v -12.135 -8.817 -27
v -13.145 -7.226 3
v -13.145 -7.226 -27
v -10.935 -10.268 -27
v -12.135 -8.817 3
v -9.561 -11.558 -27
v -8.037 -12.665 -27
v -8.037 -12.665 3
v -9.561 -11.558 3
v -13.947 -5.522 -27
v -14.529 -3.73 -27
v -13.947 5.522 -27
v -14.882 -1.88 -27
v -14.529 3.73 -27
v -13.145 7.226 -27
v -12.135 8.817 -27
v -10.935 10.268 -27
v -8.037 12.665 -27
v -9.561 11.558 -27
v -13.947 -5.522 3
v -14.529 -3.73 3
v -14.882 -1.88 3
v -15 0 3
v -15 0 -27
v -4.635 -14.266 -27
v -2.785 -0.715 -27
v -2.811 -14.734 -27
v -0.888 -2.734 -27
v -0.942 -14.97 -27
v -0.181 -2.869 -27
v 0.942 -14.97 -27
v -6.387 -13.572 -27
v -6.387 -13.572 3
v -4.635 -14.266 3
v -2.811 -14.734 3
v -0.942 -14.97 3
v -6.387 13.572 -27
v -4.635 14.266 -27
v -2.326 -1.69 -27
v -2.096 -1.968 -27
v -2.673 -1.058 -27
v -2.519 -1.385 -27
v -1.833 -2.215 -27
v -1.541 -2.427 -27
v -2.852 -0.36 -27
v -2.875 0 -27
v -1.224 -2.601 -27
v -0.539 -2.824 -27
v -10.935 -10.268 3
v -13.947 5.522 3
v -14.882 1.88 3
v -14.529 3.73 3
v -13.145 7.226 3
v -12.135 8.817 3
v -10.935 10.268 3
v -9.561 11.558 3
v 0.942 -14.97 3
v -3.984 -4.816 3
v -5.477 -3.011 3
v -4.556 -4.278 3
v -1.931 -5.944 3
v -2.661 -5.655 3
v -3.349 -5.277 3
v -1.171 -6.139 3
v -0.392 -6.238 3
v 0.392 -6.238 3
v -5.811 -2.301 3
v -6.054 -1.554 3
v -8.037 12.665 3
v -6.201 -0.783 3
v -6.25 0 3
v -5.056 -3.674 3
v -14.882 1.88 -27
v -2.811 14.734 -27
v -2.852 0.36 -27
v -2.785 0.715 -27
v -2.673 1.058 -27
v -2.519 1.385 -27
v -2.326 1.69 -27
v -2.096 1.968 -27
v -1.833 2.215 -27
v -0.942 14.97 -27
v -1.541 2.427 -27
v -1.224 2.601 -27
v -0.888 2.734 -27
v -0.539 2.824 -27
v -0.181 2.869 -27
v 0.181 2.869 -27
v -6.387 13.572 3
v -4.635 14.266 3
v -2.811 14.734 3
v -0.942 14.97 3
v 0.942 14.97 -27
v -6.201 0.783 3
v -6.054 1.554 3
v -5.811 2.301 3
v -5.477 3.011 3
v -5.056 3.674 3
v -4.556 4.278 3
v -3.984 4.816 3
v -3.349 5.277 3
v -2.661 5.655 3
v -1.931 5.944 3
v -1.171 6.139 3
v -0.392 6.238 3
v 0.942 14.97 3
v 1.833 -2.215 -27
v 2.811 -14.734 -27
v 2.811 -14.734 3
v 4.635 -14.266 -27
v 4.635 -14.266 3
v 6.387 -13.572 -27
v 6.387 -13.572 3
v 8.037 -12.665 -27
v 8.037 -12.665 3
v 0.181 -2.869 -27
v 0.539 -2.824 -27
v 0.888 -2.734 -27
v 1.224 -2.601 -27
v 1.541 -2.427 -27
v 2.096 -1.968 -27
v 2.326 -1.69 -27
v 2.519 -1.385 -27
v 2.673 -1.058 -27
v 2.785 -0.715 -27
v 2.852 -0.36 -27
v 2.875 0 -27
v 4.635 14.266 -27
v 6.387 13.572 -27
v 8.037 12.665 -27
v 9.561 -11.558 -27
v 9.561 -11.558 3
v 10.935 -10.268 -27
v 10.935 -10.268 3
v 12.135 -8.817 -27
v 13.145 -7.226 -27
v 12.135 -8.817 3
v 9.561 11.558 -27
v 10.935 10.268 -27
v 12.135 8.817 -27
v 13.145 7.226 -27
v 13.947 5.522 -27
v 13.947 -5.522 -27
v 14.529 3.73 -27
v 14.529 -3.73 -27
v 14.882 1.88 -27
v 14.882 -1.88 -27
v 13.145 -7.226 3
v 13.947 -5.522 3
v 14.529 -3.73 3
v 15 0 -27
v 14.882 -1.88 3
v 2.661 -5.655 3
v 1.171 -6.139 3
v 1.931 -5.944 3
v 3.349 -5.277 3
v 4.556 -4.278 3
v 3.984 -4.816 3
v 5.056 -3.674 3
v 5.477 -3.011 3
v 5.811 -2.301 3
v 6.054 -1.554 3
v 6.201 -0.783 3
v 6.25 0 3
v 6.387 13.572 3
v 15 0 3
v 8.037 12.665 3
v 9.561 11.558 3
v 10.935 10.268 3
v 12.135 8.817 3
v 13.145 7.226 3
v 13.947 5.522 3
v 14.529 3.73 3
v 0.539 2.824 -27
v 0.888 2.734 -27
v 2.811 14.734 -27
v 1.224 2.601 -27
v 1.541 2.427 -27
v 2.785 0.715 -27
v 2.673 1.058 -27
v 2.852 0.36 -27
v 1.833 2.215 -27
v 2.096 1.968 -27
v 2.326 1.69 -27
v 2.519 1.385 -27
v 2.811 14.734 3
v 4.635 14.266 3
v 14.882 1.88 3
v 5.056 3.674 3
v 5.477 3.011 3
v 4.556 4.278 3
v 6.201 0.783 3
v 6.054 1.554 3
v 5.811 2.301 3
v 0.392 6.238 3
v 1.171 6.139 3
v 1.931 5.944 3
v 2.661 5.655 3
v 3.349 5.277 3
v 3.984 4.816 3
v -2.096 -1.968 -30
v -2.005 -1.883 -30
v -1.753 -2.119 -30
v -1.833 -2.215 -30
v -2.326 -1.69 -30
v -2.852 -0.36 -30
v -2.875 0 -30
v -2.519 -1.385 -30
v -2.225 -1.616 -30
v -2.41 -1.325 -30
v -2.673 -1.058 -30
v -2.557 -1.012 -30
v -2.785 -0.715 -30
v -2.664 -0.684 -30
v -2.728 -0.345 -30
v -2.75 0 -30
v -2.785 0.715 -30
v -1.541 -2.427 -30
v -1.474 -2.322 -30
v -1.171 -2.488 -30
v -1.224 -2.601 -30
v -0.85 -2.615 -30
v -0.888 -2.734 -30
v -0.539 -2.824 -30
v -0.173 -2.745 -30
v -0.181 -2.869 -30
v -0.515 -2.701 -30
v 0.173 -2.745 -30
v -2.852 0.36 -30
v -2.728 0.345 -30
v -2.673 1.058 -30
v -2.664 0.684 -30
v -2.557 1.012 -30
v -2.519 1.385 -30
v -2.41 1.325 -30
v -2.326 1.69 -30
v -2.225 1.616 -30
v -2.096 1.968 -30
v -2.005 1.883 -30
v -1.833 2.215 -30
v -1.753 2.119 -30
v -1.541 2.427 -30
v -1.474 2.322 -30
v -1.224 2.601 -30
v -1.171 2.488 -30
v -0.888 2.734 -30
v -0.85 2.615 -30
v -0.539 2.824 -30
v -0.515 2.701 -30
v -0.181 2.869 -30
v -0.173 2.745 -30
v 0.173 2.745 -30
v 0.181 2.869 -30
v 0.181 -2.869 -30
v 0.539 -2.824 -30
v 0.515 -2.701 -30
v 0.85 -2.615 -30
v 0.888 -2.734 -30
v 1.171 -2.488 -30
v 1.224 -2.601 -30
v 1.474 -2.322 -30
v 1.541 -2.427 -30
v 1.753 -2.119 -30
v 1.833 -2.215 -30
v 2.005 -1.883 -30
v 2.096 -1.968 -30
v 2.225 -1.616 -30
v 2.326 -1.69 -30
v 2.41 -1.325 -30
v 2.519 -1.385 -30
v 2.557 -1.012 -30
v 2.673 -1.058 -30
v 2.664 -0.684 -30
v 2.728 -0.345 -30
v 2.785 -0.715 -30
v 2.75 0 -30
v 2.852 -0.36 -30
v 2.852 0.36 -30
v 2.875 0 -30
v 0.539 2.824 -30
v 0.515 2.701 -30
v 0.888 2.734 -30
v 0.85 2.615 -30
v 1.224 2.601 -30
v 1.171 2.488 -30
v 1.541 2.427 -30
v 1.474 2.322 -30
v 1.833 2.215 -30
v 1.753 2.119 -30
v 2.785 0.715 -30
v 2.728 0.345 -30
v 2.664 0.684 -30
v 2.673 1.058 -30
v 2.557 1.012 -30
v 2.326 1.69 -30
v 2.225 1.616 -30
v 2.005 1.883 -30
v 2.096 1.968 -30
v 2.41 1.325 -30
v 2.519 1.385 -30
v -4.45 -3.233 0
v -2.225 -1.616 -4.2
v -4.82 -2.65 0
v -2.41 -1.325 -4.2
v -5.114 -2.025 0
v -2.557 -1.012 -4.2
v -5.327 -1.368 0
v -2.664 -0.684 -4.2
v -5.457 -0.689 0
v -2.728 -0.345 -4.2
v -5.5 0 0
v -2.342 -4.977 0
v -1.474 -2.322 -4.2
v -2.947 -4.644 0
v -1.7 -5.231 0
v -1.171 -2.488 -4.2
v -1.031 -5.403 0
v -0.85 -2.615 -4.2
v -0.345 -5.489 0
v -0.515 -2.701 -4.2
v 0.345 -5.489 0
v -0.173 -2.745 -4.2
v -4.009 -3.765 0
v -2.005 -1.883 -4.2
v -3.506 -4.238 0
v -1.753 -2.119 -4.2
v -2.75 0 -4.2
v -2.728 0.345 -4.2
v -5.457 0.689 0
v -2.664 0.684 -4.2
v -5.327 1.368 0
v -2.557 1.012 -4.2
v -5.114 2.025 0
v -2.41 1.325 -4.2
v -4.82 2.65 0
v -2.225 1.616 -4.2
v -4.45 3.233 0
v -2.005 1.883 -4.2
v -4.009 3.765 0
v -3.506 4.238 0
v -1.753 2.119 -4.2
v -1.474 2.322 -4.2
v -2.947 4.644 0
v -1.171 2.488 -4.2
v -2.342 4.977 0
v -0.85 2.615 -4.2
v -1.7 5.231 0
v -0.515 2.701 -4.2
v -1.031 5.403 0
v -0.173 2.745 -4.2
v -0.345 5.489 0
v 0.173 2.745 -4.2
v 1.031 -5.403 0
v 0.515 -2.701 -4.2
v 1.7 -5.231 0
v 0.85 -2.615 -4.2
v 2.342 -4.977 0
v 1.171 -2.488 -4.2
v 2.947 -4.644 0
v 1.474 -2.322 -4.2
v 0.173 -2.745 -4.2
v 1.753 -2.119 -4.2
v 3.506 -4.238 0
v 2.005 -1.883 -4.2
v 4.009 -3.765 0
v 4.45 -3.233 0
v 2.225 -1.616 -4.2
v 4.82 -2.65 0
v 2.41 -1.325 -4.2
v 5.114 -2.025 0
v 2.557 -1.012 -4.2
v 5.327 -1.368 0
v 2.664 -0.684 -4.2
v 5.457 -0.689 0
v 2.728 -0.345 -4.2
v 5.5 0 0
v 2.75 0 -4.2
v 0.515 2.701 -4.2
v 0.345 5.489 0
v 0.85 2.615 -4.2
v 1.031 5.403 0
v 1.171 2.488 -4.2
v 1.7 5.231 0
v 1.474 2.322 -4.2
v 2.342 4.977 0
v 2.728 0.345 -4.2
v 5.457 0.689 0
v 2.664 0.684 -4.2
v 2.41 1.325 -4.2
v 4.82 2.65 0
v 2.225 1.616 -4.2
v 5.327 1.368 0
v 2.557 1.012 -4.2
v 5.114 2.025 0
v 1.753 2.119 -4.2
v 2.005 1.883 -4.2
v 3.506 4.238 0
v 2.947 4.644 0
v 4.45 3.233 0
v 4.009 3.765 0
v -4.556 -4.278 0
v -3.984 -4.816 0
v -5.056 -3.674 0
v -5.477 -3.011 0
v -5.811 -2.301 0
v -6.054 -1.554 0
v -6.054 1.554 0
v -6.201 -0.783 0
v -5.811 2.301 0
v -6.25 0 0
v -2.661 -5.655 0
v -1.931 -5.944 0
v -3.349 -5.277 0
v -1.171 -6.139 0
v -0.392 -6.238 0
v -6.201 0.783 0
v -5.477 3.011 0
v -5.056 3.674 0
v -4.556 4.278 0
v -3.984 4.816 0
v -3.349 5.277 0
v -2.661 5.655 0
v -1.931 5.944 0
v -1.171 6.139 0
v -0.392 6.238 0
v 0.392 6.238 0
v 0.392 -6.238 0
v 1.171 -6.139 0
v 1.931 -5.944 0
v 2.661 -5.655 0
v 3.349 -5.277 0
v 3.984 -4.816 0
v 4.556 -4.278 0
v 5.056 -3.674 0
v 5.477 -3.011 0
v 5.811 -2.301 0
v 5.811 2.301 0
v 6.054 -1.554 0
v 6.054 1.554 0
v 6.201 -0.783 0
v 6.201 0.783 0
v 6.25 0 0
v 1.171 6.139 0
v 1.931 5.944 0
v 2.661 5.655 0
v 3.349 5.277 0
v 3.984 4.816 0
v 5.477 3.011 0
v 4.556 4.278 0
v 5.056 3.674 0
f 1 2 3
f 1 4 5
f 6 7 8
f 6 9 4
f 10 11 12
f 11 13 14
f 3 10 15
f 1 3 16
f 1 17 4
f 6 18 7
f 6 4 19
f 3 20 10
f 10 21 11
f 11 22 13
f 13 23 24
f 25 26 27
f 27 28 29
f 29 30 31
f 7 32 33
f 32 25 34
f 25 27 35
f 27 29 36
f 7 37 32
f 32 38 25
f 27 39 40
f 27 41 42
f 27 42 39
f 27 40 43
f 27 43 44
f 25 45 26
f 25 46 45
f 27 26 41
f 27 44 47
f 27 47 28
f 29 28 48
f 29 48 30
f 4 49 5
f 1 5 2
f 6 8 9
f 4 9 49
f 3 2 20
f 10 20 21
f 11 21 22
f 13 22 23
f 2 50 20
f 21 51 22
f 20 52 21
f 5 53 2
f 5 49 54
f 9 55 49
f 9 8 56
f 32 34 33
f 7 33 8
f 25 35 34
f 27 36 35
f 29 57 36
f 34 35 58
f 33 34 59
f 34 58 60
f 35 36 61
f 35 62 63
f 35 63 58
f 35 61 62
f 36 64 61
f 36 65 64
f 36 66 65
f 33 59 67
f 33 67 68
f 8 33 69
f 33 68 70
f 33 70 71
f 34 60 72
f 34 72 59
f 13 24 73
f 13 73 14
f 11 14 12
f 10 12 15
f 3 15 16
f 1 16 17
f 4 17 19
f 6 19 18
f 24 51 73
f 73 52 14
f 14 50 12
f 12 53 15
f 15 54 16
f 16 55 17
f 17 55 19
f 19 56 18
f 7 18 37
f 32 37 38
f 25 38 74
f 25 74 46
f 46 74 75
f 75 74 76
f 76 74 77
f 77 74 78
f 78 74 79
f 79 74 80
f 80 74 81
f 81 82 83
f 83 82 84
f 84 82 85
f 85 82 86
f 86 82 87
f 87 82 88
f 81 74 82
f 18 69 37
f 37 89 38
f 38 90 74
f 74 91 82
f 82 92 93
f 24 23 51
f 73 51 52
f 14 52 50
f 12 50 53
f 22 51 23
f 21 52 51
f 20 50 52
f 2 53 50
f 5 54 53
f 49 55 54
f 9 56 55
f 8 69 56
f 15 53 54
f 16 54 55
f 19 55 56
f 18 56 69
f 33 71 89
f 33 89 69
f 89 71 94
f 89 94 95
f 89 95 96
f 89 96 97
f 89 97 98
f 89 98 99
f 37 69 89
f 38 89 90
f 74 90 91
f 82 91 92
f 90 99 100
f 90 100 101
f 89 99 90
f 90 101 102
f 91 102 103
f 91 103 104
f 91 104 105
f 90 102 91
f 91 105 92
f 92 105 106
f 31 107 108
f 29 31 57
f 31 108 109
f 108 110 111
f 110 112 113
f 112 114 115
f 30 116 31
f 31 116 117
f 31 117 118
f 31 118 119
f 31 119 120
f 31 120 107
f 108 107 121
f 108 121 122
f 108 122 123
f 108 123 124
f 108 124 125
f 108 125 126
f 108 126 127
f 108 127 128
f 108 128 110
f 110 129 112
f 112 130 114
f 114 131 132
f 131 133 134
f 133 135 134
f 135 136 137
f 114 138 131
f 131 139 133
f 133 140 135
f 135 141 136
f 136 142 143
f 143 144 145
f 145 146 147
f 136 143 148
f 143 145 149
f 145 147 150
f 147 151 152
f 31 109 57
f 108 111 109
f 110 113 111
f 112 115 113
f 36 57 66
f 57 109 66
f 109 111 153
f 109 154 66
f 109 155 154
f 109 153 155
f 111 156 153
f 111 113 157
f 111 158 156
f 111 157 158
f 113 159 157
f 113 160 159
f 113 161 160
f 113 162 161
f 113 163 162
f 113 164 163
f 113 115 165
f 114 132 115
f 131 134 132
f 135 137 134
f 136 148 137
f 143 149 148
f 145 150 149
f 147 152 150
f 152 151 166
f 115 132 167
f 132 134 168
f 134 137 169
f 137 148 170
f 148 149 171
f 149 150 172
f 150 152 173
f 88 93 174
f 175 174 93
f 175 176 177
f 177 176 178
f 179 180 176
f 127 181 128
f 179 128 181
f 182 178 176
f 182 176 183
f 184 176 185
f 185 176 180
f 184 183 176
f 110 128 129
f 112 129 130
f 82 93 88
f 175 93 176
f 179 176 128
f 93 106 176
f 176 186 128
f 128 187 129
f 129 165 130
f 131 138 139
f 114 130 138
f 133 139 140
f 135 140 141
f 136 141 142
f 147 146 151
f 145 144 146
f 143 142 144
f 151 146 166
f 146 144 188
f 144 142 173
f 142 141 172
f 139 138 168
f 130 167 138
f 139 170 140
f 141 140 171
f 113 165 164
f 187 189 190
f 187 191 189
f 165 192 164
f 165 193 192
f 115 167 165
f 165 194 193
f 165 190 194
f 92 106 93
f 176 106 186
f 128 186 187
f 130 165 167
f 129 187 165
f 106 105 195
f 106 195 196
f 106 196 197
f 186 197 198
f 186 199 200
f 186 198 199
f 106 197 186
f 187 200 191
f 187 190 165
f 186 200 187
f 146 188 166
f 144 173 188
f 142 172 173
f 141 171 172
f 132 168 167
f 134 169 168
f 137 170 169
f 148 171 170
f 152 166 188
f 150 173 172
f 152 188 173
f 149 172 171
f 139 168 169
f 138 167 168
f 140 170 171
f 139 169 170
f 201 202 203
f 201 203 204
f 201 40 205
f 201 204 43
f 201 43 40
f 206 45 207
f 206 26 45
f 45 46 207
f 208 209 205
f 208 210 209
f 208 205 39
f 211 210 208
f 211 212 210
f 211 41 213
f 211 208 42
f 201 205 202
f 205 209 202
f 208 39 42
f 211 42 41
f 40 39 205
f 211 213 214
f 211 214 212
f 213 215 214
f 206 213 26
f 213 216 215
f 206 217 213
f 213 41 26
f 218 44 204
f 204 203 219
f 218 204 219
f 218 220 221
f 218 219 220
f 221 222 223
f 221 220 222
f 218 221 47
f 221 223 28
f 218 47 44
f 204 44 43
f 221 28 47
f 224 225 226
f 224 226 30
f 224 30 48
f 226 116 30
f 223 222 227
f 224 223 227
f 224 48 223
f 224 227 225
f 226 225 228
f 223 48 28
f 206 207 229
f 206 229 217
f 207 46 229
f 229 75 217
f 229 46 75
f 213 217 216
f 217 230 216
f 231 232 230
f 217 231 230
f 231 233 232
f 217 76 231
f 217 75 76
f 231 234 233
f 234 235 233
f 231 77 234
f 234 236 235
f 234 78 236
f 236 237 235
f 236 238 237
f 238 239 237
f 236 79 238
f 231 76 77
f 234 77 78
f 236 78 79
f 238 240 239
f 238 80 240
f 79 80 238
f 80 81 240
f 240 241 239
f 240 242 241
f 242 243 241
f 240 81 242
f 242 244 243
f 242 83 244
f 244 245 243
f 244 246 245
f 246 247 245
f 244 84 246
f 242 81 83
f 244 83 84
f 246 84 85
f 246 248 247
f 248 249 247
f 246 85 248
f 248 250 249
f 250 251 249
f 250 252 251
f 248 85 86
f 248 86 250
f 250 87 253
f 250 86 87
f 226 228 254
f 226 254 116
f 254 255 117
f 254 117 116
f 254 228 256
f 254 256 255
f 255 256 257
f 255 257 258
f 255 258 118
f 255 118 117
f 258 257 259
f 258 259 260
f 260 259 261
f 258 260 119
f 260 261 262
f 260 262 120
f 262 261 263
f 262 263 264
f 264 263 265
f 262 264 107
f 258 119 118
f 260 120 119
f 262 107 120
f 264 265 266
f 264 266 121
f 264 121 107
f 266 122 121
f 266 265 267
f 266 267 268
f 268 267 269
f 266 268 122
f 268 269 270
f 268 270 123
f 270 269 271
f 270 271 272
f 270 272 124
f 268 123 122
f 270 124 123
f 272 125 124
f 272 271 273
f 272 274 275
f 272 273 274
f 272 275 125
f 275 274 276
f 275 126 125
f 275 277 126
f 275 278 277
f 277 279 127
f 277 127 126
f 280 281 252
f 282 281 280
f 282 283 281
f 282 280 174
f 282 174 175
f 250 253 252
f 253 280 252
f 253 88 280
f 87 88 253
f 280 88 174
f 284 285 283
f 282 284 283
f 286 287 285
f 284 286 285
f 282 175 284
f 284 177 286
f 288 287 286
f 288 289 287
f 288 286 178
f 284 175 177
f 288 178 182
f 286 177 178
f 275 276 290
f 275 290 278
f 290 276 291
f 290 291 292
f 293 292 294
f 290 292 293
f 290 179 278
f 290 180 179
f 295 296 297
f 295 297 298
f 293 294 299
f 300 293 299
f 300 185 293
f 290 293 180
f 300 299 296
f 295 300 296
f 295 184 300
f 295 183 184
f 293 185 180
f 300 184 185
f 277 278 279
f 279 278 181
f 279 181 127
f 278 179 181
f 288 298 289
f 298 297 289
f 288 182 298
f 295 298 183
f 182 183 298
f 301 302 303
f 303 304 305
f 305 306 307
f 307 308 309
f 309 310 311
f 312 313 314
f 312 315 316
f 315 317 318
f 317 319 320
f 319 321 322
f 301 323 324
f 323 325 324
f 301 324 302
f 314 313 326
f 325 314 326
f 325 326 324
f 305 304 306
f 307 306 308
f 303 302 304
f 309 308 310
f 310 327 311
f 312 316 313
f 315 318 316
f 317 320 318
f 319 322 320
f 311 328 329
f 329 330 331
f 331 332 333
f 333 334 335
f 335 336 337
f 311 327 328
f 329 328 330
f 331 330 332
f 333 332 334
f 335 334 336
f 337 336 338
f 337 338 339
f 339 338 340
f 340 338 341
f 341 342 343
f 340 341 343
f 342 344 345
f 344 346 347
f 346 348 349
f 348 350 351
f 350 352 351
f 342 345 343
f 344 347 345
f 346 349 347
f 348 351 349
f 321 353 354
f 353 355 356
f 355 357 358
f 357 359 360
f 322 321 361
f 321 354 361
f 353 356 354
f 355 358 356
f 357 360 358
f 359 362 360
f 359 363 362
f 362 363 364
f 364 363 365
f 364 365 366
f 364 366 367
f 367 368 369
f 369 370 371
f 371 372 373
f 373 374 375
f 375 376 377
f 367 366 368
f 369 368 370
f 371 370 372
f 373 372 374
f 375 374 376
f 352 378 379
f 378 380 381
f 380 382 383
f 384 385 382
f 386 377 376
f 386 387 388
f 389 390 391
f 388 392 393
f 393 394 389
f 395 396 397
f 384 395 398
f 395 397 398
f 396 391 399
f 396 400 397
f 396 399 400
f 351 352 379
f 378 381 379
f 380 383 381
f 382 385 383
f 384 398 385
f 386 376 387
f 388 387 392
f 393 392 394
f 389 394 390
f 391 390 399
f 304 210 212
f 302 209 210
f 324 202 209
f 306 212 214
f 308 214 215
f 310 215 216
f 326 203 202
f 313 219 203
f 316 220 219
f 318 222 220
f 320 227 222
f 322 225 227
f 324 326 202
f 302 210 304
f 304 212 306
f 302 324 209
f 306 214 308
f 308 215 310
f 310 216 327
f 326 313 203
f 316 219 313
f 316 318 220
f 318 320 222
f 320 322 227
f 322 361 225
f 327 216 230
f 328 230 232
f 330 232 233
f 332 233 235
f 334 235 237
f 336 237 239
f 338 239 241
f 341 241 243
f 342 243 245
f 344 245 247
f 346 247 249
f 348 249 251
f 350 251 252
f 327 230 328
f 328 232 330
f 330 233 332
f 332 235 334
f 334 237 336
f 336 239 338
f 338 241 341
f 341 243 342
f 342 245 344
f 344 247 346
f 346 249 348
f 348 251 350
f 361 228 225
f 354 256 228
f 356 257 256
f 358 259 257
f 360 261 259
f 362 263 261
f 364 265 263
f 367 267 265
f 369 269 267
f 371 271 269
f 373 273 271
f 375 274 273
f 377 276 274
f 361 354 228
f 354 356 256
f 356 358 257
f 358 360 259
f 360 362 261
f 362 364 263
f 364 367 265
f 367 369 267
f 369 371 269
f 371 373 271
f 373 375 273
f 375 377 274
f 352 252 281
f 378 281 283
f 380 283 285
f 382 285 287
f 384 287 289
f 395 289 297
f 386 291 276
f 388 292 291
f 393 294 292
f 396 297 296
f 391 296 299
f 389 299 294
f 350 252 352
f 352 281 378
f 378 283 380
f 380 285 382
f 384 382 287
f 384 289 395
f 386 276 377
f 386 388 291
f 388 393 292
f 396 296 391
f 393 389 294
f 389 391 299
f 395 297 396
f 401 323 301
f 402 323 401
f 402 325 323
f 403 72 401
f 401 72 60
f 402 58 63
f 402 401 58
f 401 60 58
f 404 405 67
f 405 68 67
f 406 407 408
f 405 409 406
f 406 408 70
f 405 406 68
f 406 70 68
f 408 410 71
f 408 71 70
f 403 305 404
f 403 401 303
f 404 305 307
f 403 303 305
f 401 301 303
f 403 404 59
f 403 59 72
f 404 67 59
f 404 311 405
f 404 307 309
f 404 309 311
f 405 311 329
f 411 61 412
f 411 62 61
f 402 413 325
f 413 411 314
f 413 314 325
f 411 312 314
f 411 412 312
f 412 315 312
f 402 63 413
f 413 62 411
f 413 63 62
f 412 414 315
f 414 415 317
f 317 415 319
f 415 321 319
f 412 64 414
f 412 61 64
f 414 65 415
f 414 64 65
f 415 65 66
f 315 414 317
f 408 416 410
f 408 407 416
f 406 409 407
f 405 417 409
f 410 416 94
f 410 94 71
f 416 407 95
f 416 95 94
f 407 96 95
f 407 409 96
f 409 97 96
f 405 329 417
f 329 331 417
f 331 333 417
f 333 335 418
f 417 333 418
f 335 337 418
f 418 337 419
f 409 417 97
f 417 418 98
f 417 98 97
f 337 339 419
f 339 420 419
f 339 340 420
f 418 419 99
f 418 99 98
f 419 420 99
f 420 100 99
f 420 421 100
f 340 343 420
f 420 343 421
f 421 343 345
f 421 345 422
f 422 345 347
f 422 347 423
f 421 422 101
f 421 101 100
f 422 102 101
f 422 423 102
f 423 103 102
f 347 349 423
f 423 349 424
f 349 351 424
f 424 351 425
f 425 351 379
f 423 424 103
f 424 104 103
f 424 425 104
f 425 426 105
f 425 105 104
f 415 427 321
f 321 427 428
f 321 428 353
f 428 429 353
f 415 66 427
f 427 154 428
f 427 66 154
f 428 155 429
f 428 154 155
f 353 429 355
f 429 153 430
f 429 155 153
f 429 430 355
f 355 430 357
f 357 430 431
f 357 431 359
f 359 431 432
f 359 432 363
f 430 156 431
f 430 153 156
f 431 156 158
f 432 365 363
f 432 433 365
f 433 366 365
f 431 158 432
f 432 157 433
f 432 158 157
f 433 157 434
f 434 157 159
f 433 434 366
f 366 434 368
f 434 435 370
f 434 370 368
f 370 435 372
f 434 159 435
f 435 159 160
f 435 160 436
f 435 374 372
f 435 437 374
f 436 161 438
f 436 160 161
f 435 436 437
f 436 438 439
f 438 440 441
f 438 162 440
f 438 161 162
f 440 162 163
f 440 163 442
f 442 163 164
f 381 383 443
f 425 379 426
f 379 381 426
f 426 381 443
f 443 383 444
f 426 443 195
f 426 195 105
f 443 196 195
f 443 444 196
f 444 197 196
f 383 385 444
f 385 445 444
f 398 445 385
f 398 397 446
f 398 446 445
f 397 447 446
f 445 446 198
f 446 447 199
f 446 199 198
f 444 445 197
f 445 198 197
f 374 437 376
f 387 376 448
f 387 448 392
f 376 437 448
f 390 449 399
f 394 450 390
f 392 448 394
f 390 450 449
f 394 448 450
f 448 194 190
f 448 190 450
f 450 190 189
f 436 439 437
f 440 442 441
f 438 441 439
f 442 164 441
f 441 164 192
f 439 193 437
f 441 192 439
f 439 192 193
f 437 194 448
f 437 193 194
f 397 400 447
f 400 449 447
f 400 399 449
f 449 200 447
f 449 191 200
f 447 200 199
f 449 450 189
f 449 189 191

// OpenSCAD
$fn = 50;

difference() {
	union() {
		translate(v = [0, 0, -27.0]) {
			cylinder(h = 30, r = 15.0);
		}
		#translate(v = [0, 0, -30.0]) {
			cylinder(h = 30, r = 2.875);
		}
	}
	union() {
		translate(v = [0, 0, 0]) {
			rotate(a = [0, 0, 0]) {
				difference() {
					union() {
						translate(v = [0, 0, -30.0]) {
							cylinder(h = 30, r = 2.25);
						}
						translate(v = [0, 0, -4.2]) {
							cylinder(h = 4.2, r1 = 2.75, r2 = 5.5);
						}
						translate(v = [0, 0, -30.0]) {
							cylinder(h = 30, r = 2.75);
						}
						translate(v = [0, 0, -30.0]) {
							cylinder(h = 30, r = 2.25);
						}
					}
					union();
				}
			}
		}
		#cylinder(h = 3, r = 6.25);
	}
}
